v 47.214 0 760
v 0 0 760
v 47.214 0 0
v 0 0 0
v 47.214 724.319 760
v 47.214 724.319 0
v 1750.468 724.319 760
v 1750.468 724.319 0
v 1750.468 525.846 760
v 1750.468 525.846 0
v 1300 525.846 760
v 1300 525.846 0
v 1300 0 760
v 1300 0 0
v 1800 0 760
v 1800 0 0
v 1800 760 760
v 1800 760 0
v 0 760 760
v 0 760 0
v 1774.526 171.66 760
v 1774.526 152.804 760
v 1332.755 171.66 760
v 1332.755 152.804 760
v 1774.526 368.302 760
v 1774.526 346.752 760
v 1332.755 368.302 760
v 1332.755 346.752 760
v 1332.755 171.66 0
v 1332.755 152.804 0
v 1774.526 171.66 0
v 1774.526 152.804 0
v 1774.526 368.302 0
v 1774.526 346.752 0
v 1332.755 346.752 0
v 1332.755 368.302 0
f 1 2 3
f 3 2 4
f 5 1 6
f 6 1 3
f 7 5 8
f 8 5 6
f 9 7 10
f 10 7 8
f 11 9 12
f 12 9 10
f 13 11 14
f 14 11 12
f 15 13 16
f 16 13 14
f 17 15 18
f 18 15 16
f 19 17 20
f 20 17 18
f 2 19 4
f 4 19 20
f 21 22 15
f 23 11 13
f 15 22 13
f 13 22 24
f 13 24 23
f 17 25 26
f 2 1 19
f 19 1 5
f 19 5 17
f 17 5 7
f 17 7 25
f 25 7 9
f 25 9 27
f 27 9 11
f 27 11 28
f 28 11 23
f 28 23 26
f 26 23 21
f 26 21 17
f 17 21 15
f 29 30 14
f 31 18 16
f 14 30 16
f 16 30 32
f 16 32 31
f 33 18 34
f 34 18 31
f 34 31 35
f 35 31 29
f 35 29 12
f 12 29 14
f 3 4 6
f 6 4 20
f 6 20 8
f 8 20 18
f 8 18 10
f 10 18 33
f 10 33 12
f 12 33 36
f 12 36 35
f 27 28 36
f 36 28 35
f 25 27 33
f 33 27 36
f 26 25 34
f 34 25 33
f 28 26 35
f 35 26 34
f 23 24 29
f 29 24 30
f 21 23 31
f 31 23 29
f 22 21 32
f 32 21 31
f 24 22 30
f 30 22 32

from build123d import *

# Parameters (mm, degrees)
SALIENTE_EXTRUIR1_DEPTH = 760
CROQUIS3_W              = 441.770557025
CROQUIS3_H              = 21.549783269
CROQUIS3_H_2            = 18.85606036
CORTAR_EXTRUIR1_DEPTH   = 899


with BuildPart() as part:
    # Croquis2 → Saliente-Extruir1 (new body)
    with BuildSketch(Plane.XY):
        Polygon((0, 0), (0, 760), (1800, 760), (1800, 0), (1300, 0), (1300, 525.845869983), (1750.467945366, 525.845869983), (1750.467945366, 724.319370664), (47.213684499, 724.319370664), (47.213684499, 0), align=None)
    extrude(amount=SALIENTE_EXTRUIR1_DEPTH)

    # Croquis3 → Cortar-Extruir1 (cut)
    with BuildSketch(Plane.XY.offset(760)):
        with Locations((1553.640740137, 357.52664055)):
            Rectangle(CROQUIS3_W, CROQUIS3_H)
        with Locations((1553.640740137, 162.23172967)):
            Rectangle(CROQUIS3_W, CROQUIS3_H_2)
    extrude(amount=-CORTAR_EXTRUIR1_DEPTH, mode=Mode.SUBTRACT)


solid = part.part
